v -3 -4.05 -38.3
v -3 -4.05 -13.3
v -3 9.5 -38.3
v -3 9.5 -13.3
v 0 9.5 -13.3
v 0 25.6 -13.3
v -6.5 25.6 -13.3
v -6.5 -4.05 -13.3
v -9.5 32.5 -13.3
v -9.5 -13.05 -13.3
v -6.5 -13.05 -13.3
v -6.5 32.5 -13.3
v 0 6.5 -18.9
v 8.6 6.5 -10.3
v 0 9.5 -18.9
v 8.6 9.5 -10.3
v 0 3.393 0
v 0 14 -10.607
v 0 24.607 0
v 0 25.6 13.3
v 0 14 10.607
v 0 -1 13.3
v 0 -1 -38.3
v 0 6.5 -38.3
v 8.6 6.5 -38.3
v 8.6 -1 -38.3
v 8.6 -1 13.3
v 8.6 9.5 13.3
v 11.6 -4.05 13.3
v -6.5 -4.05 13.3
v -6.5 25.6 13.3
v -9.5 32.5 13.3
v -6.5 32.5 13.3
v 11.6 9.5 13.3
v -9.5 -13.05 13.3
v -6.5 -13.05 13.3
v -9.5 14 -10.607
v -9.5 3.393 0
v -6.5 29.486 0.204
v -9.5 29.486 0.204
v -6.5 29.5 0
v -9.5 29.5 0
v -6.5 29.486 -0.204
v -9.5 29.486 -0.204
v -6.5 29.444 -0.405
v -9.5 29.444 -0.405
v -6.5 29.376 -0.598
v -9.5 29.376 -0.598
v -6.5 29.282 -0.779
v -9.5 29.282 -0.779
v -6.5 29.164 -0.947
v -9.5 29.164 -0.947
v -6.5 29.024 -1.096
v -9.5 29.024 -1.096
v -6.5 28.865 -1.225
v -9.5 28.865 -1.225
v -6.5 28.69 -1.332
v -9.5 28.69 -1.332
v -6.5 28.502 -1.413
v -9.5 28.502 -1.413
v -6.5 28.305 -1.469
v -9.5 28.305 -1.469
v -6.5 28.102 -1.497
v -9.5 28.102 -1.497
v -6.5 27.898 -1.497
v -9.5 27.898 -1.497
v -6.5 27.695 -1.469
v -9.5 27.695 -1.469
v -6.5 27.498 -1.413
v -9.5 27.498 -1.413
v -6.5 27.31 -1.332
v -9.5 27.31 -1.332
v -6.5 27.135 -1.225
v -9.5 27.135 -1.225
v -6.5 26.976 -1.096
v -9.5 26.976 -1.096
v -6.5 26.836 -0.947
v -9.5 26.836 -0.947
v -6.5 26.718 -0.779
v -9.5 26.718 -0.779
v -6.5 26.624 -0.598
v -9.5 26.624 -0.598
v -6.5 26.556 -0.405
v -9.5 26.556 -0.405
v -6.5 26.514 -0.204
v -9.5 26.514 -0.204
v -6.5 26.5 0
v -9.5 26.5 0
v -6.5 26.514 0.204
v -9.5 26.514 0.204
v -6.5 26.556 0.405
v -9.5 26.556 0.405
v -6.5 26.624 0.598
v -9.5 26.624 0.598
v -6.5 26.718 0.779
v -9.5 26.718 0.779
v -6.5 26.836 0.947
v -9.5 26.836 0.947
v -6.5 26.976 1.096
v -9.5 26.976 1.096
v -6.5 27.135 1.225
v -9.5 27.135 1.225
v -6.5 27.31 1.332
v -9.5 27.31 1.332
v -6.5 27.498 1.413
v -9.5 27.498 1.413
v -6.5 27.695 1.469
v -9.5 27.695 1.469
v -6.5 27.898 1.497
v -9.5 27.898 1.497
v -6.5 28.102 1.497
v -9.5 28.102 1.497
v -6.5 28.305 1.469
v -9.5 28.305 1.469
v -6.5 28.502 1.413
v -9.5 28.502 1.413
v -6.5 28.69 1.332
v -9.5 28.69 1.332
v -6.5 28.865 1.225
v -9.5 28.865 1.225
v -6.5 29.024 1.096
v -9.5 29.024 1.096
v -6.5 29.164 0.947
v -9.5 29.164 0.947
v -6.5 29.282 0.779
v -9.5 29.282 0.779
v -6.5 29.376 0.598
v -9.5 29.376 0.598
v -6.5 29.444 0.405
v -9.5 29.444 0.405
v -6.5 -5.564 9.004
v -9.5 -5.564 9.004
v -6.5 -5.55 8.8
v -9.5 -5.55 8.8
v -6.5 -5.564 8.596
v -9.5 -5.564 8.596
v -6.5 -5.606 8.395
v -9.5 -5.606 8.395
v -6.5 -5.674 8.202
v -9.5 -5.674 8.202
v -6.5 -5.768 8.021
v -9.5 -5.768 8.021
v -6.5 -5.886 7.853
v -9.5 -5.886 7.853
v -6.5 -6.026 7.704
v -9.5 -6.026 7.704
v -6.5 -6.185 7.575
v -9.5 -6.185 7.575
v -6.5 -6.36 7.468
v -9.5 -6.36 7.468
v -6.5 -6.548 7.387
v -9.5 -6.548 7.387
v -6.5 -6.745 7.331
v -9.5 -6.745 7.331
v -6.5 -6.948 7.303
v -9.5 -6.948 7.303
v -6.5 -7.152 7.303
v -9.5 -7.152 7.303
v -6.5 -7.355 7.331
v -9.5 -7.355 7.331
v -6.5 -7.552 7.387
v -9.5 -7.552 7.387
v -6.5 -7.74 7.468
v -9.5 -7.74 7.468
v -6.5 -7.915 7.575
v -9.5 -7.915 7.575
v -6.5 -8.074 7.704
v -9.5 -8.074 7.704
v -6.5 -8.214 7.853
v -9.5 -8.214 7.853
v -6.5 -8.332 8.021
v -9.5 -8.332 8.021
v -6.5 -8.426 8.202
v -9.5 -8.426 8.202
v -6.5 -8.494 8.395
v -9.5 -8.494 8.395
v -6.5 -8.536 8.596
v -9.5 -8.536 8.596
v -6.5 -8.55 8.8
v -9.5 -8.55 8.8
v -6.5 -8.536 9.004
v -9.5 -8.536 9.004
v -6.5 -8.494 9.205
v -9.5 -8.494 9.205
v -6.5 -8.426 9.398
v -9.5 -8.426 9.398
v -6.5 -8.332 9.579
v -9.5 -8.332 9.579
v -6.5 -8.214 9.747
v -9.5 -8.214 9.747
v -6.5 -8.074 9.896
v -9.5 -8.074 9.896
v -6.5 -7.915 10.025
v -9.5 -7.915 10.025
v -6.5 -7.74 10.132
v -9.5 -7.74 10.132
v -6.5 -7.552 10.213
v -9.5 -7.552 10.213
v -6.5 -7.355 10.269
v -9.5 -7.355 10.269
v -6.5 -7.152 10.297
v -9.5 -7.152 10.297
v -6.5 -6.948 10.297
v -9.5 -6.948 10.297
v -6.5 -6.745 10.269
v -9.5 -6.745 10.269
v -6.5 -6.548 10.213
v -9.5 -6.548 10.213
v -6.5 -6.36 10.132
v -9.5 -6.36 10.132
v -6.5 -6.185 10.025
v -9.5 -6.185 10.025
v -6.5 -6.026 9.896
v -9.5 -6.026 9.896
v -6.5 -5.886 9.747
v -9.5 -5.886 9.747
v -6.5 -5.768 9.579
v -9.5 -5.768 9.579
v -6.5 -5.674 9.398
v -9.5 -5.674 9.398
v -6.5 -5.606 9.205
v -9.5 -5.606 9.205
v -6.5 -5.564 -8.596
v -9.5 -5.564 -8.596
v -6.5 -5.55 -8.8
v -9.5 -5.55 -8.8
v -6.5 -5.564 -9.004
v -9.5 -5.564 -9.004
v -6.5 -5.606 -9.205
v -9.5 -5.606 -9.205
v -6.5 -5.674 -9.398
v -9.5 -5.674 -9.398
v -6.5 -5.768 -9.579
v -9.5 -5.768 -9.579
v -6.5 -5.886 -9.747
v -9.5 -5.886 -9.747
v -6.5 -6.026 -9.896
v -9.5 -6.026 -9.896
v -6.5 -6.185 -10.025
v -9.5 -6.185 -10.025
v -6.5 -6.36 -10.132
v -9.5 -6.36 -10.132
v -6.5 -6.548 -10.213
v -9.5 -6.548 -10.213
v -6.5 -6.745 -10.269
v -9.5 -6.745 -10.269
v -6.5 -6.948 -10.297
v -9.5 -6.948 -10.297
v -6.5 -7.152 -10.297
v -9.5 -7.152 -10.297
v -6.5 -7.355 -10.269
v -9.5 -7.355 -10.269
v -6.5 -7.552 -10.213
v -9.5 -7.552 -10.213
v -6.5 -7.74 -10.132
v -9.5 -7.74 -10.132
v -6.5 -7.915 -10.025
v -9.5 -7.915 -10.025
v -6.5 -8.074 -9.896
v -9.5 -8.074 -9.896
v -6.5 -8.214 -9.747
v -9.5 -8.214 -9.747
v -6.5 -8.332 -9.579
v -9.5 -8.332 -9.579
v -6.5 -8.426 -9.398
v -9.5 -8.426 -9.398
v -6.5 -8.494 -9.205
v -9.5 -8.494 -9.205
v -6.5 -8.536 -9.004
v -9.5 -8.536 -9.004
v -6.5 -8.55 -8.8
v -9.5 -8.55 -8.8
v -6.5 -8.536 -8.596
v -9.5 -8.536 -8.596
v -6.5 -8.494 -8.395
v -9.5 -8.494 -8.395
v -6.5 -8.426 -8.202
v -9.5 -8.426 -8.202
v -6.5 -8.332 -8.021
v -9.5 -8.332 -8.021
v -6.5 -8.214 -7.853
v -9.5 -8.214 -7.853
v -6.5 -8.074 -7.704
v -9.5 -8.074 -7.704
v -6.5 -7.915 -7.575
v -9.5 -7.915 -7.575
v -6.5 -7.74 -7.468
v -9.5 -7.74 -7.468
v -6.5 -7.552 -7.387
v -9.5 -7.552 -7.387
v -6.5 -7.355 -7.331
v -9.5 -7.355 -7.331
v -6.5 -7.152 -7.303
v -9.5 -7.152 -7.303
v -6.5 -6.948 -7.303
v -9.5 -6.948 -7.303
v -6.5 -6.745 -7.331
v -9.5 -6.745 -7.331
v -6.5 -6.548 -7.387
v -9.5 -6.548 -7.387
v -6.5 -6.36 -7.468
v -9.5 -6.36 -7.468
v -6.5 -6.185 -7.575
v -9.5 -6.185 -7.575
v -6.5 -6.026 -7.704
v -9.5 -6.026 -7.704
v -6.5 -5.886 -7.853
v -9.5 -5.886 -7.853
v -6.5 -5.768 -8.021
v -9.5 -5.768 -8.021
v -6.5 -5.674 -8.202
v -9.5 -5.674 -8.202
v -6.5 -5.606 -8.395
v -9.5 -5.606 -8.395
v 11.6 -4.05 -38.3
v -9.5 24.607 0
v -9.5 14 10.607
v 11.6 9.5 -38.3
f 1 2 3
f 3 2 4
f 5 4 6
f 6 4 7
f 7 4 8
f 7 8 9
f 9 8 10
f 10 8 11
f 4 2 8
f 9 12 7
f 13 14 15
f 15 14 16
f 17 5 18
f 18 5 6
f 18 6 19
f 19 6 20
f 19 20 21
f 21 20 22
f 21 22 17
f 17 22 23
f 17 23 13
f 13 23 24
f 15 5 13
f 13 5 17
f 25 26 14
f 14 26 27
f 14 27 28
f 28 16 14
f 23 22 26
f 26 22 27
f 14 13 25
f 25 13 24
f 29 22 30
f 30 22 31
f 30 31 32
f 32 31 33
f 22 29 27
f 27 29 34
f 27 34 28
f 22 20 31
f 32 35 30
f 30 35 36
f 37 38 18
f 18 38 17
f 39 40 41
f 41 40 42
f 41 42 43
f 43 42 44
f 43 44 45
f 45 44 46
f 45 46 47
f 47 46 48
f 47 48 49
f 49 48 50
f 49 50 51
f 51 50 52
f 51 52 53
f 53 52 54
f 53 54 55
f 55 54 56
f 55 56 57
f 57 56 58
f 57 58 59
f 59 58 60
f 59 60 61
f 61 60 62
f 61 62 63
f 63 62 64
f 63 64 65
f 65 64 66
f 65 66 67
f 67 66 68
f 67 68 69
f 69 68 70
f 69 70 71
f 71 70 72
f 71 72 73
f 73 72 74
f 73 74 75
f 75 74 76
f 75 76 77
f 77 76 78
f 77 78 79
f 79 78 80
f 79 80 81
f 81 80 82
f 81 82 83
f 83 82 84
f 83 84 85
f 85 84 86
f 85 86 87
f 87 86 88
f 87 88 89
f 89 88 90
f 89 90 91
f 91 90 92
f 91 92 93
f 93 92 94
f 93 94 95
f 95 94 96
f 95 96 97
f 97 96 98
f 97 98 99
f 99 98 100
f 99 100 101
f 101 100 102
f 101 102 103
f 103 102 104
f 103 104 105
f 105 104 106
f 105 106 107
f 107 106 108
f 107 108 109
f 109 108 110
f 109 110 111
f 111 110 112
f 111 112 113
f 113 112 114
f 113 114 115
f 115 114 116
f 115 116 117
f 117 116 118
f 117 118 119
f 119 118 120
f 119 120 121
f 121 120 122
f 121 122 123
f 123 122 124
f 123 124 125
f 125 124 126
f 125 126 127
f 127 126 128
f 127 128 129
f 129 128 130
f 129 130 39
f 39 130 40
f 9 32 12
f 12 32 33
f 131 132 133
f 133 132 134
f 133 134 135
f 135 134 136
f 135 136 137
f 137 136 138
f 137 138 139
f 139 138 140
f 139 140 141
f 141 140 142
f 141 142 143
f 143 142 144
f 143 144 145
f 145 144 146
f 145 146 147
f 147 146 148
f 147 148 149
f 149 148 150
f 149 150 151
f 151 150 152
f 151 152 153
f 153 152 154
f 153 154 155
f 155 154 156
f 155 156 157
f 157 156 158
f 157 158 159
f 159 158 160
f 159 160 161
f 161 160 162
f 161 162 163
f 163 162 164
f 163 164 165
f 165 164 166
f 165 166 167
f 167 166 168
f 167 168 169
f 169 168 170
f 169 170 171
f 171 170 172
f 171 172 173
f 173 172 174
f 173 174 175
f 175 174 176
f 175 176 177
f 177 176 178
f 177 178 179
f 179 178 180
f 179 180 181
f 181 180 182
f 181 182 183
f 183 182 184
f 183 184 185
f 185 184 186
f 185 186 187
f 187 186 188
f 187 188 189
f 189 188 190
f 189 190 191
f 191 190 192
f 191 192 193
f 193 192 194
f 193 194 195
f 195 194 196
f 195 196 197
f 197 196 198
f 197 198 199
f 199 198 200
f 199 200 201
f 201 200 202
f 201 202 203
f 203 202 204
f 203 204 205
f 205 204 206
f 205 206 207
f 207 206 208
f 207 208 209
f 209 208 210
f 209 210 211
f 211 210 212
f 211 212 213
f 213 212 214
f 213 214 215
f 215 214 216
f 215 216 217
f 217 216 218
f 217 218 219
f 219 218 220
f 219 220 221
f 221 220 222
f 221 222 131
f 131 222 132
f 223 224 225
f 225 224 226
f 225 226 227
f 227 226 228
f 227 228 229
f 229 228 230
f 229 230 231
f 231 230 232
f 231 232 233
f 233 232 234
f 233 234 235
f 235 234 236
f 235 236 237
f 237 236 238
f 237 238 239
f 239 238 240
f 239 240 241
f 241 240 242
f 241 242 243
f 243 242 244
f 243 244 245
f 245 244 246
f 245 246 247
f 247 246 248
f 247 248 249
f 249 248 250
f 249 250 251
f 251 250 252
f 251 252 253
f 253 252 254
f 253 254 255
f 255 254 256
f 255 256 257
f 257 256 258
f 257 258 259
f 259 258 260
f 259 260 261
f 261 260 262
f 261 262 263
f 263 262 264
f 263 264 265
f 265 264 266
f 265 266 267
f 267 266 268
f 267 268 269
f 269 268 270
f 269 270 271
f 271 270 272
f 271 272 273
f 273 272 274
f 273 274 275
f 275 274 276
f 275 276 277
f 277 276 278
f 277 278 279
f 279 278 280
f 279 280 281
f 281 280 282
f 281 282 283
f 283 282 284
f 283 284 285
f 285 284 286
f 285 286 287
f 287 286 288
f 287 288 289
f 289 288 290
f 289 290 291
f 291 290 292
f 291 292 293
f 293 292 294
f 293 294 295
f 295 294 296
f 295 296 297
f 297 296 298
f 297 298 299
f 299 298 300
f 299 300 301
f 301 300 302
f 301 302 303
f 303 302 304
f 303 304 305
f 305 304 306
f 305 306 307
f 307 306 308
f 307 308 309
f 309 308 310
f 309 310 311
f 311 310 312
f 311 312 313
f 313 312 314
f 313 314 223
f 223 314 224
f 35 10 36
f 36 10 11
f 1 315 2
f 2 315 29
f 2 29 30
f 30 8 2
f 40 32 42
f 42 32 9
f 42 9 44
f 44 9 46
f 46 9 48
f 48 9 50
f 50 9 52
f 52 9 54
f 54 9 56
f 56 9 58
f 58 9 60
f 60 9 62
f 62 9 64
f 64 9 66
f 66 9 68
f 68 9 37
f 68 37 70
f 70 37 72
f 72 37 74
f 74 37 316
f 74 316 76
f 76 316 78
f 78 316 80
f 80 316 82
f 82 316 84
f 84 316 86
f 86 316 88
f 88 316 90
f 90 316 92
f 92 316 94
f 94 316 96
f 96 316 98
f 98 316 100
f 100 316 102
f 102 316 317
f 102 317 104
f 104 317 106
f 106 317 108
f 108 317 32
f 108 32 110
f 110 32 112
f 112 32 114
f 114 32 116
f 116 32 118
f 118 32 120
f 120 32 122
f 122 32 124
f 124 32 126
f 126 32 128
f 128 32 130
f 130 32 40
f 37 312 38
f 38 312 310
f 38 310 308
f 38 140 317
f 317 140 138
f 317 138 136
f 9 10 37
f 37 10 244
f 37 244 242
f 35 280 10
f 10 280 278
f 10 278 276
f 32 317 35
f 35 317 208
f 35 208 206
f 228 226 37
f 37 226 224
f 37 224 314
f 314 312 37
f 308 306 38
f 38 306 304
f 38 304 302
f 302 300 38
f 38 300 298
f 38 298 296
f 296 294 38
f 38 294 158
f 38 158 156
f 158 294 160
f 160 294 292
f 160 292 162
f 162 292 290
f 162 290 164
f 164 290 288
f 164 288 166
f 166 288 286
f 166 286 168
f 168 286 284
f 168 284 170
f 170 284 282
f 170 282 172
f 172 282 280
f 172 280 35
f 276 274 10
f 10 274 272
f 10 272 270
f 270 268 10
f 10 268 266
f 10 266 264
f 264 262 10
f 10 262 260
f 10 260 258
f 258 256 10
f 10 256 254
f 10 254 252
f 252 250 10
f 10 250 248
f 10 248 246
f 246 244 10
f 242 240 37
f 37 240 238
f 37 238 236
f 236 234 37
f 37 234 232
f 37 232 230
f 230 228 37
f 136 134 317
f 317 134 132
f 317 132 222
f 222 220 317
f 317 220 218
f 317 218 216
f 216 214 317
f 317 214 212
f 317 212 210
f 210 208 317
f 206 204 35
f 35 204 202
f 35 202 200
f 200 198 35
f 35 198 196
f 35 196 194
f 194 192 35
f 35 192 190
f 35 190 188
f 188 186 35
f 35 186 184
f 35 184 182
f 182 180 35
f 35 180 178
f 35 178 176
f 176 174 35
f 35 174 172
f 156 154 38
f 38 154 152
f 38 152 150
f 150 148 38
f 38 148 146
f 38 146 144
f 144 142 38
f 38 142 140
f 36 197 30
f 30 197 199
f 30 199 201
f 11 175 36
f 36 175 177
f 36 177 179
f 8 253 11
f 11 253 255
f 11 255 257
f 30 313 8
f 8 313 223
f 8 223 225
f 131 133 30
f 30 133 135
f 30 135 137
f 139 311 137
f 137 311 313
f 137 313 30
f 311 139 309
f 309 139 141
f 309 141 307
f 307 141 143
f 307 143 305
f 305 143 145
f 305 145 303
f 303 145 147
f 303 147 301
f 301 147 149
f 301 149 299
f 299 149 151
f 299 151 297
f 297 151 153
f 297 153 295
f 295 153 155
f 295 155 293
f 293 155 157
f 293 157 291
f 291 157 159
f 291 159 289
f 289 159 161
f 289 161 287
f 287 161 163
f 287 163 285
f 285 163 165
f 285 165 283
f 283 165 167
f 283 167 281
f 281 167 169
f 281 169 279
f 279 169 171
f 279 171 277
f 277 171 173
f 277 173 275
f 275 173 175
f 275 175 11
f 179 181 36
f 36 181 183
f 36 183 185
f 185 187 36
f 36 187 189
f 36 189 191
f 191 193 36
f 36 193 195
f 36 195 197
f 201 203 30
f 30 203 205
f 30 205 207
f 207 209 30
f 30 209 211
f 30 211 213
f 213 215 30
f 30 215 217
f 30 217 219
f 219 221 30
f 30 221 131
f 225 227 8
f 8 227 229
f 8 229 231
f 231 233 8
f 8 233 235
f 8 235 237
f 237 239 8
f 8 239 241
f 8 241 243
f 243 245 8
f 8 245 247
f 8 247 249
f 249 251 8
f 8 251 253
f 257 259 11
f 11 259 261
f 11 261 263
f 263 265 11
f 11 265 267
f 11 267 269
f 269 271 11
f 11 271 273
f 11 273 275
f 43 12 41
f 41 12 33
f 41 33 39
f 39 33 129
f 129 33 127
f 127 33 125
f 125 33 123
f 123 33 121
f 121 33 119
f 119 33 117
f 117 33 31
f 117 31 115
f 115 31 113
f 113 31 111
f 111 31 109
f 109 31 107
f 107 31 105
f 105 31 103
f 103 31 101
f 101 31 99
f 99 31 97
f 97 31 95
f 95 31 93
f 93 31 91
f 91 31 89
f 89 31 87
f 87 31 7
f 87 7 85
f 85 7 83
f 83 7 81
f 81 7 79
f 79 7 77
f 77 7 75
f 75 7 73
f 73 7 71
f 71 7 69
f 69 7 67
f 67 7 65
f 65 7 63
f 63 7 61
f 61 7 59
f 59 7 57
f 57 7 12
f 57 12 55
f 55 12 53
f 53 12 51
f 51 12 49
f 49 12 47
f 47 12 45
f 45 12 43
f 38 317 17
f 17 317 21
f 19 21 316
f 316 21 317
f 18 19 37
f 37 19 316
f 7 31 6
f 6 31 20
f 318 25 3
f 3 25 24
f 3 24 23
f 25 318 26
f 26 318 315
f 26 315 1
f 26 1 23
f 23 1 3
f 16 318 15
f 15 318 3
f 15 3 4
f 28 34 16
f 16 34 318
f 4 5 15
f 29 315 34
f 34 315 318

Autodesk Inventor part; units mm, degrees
ref_plane "YZ Plane" through (0, 0, 0) normal (1, 0, 0) x (0, 1, 0)
ref_plane "XZ Plane" through (0, 0, 0) normal (0, 1, 0) x (-1, 0, 0)
ref_plane "XY Plane" through (0, 0, 0) normal (0, 0, 1) x (1, 0, 0)
sketch "Sketch2" plane through (0, 0, 0) normal (1, 0, 0) x (0, 1, 0)
  line L0 (0, 0) -> (14, 0)
  line L1 (14, 0) -> (16.5, 0)
  line L2 (14, 0) -> (11.5, 0)
  line L3 (14, 0) -> (28, 0)
  line L4 (14, 0) -> (-8.55, 0)
  circle A0 centre (14, 0) radius 2.75
  line L5 (-8.55, 0) -> (-8.55, 8.8)
  line L6 (-8.55, 0) -> (-8.55, -8.8)
  line L7 (0, 0) -> (0, -13.3)
  line L8 (0, -13.3) -> (6.5, -13.3)
  line L9 (0, 0) -> (0, 13.3)
  line L10 (28, 0) -> (29.5, 0)
  line L11 (29.5, 0) -> (32.5, 0)
  line L12 (-10.05, 10.3) -> (-13.05, 10.3)
  line L13 (-13.05, 10.3) -> (-13.05, 13.3)
  line L14 (-13.05, 13.3) -> (-10.05, 13.3)
  line L15 (-10.05, 13.3) -> (-10.05, 10.3)
  line L16 (-10.05, -10.3) -> (-13.05, -10.3)
  line L17 (-13.05, -10.3) -> (-13.05, -13.3)
  line L18 (-13.05, -13.3) -> (-10.05, -13.3)
  line L19 (-10.05, -13.3) -> (-10.05, -10.3)
  line L20 (-13.05, -13.3) -> (32.5, -13.3)
  line L21 (32.5, -13.3) -> (32.5, 13.3)
  line L22 (32.5, 13.3) -> (-13.05, 13.3)
  line L23 (-13.05, 13.3) -> (-13.05, -13.3)
  line L24 (9.5, 13.3) -> (-3, 13.3)
  circle A1 centre (14, 0) radius 7.5
  line L25 (28, 0) -> (25.6, 0)
  line L26 (25.6, 0) -> (25.6, -2.4)
  line L27 (25.6, 2.4) -> (25.6, -2.4)
  line L28 (25.6, 13.3) -> (25.6, -13.3)
  line L29 (32.5, 0) -> (32.5, -3)
  line L30 (28, -1.5) -> (28, -4.5)
  line L31 (28, 1.5) -> (28, 4.5)
  line L32 (32.5, 4.5) -> (25.6, 4.5)
  line L33 (25.6, 4.5) -> (25.6, -4.5)
  line L34 (25.6, -4.5) -> (32.5, -4.5)
  line L35 (32.5, -4.5) -> (32.5, 4.5)
  line L36 (0, -13.3) -> (0, -38.3)
  line L37 (0, -38.3) -> (6.5, -38.3)
  line L38 (6.5, -13.3) -> (9.5, -13.3)
  line L39 (9.5, -13.3) -> (9.5, -38.3)
  line L40 (9.5, -38.3) -> (6.5, -38.3)
  line L41 (6.5, -38.3) -> (6.5, -13.3)
  line L42 (0, -13.3) -> (-3, -13.3)
  line L43 (-3, -13.3) -> (-3, -38.3)
  line L44 (-3, -38.3) -> (0, -38.3)
  line L45 (0, -38.3) -> (0, -13.3)
  line L46 (9.5, -13.3) -> (6.5, -13.3)
  line L47 (6.5, -13.3) -> (6.5, -10.3)
  line L48 (6.5, -10.3) -> (9.5, -10.3)
  line L49 (9.5, -10.3) -> (9.5, -13.3)
  line L50 (-3, -13.3) -> (-3, 13.3)
  line L51 (-7.05, 8.8) -> (-5.05, 8.8)
  line L52 (-4.05, 13.3) -> (-4.05, -13.3)
  line L53 (9.5, -10.3) -> (9.5, 13.3)
  line L54 (6.5, -10.3) -> (6.5, 13.3)
  line L55 (25.6, -7.5) -> (0, -7.5)
  line L56 (25.6, 7.5) -> (0, 7.5)
  line L57 (14, 0) -> (19.3033, -5.3033)
  line L58 (14, 0) -> (21.5, 0) construction
  line L59 (19.3033, -5.3033) -> (14, -10.6066)
  line L60 (14, -10.6066) -> (24.6066, 0)
  line L61 (14, -10.6066) -> (3.3934, 0)
  line L62 (24.6066, 0) -> (14, 10.6066)
  line L63 (14, 10.6066) -> (3.3934, 0)
  line L64 (0, 13.3) -> (-1, 13.3)
  line L65 (-1, 13.3) -> (-1, -38.3)
  line L66 (-3, -38.3) -> (-4.05, -38.3)
  line L67 (-4.05, -38.3) -> (-4.05, -13.3)
  line L68 (25.6, 0) -> (27.6, 0)
  line L69 (25.6, 0) -> (27.6, 0)
  line L70 (27.6, 0) -> (29.1, 0)
  line L71 (29.1, 0) -> (27.1, 0)
  circle A2 centre (28, 0) radius 1.5
  circle A3 centre (-7.05, 8.8) radius 1.5
  circle A4 centre (-7.05, -8.8) radius 1.5
  point P0 (-3, -13.3)
  point P1 (6.5, 10.3)
  point P2 (6.5, -7.5)
  point P3 (6.5, 7.5)
  point P4 (6.5, -3.1066)
  point P5 (10.8934, -7.5)
  point P6 (6.5, 3.1066)
  point P7 (10.8934, 7.5)
  point P8 (17.1066, -7.5)
  point P9 (17.1066, 7.5)
  dimension "d30" = 15
  dimension "d8" = 14
  dimension "d9" = 2.5
  dimension "d10" = 2.5
  dimension "d11" = 14
  dimension "d12" = 22.55
  dimension "d14" = 5.5
  dimension "d15" = 8.8
  dimension "d19" = 13.3
  dimension "d23" = 3
  dimension "d24" = 3
  dimension "d25" = 3
  dimension "d26" = 3
  dimension "d27" = 3
  dimension "d39" = 3
  dimension "d42" = 25
  dimension "d43" = 6.5
  dimension "d44" = 3
  dimension "d45" = 3
  dimension "d46" = 3
  dimension "d47" = 2
  dimension "d55" = 45
  dimension "d58" = 15
  dimension "d64" = 1
  dimension "d65" = 2
  dimension "d66" = 1.5
  dimension "d68" = 2
  dimension "d70" = 3
  dimension "d71" = 3
extrude "Extrusion1" add sketch "Sketch2" along normal blind 8.6 contours L65 L20 L50 L4 | L4 L50 L22 L65 | L50 L20 L52 L4 | L4 L52 L22 L50 | L65 L44 L43 L20 | L43 L66 L67 L20 | L47 L48 L49 L20 | L20 L39 L40 L41
extrude "Extrusion2" add sketch "Sketch2" against normal blind 9.5 contours L9 L56 L54 L63 L0 | L7 L20 L65 L4 | L0 L61 L54 L55 L7 | L4 L65 L22 L9 | L65 L20 L50 L4 | L4 L50 L22 L65 | L55 L54 L47 L8 L7 | L9 L22 L54 L56 | L61 L53 L55 L54 | L54 L56 L53 L63 | L50 L20 L52 L4 | L4 L52 L22 L50 | L55 L53 L48 L54 | L54 L22 L53 L56 | L47 L48 L49 L20 | L55 L61 L59 L28 L20 L49 L53 | L53 L61 L55 | L56 L63 L53 | L53 L22 L28 L56 L62 L63 | L60 L3 L26 L28 L55 L59 | L62 L56 L28 L27 L3
extrude "Extrusion3" add sketch "Sketch2" along normal blind 3 from surface at -9.5 contours L52 L20 L19 L16 L23 L12 L15 L22 | L15 L12 L13 L14 | L18 L17 L16 L19 | L28 L34 L21 L20 | L22 L21 L32 L28 | L34 L30 A2 L11 L21 | L28 L26 L3 A2 L30 L34 | L21 L11 A2 L31 L32 | L32 L31 A2 L3 L27 L28
extrude "Extrusion4" add sketch "Sketch2" along normal blind 3 from surface at 8.6 contours L9 L56 L54 L63 L0 | L7 L20 L65 L4 | L0 L61 L54 L55 L7 | L4 L65 L22 L9 | L63 L54 L0 | L0 L54 L61 | L65 L20 L50 L4 | L4 L50 L22 L65 | L55 L54 L47 L8 L7 | L9 L22 L54 L56 | A1 L53 L0 | L54 L63 A1 | L0 L53 A1 | A1 L61 L54 | L61 L53 L55 L54 | L54 L56 L53 L63 | L50 L20 L52 L4 | L4 L52 L22 L50 | L65 L44 L43 L20 | L20 L36 L44 L65 | L8 L41 L37 L36 | L55 L53 L48 L54 | L54 L22 L53 L56 | L63 L53 A1 | A1 L53 L61 | L43 L66 L67 L20 | L47 L48 L49 L20 | L20 L39 L40 L41
sketch "Sketch3" plane through (0, 9.5, -13.3) normal (0, 1, 0) x (1, 0, 0)
  line L0 (0, -3) -> (8.6, -3) projected
  line L1 (8.6, -3) -> (0, 5.6)
  line L2 (0, 25) -> (0, 0) projected
  line L3 (8.6, -3) -> (20.7622, -3) construction
  line L4 (0, 5.6) -> (0, -3)
  line L5 (0, 0) -> (0, -26.6) projected
  line L6 (8.6, -3) -> (0, -3)
  point P0 (0, -13.3)
  point P1 (0, 0)
  dimension "d59" = 135
extrude "Extrusion5" cut sketch "Sketch3" against normal up to next
extrude "Extrusion6" add sketch "Sketch2" against normal blind 3 contours L65 L44 L43 L20 | L20 L36 L44 L65 | L8 L41 L37 L36 | L43 L66 L67 L20 | L20 L39 L40 L41
properties part number "linear motion motor and gearbox holder"
